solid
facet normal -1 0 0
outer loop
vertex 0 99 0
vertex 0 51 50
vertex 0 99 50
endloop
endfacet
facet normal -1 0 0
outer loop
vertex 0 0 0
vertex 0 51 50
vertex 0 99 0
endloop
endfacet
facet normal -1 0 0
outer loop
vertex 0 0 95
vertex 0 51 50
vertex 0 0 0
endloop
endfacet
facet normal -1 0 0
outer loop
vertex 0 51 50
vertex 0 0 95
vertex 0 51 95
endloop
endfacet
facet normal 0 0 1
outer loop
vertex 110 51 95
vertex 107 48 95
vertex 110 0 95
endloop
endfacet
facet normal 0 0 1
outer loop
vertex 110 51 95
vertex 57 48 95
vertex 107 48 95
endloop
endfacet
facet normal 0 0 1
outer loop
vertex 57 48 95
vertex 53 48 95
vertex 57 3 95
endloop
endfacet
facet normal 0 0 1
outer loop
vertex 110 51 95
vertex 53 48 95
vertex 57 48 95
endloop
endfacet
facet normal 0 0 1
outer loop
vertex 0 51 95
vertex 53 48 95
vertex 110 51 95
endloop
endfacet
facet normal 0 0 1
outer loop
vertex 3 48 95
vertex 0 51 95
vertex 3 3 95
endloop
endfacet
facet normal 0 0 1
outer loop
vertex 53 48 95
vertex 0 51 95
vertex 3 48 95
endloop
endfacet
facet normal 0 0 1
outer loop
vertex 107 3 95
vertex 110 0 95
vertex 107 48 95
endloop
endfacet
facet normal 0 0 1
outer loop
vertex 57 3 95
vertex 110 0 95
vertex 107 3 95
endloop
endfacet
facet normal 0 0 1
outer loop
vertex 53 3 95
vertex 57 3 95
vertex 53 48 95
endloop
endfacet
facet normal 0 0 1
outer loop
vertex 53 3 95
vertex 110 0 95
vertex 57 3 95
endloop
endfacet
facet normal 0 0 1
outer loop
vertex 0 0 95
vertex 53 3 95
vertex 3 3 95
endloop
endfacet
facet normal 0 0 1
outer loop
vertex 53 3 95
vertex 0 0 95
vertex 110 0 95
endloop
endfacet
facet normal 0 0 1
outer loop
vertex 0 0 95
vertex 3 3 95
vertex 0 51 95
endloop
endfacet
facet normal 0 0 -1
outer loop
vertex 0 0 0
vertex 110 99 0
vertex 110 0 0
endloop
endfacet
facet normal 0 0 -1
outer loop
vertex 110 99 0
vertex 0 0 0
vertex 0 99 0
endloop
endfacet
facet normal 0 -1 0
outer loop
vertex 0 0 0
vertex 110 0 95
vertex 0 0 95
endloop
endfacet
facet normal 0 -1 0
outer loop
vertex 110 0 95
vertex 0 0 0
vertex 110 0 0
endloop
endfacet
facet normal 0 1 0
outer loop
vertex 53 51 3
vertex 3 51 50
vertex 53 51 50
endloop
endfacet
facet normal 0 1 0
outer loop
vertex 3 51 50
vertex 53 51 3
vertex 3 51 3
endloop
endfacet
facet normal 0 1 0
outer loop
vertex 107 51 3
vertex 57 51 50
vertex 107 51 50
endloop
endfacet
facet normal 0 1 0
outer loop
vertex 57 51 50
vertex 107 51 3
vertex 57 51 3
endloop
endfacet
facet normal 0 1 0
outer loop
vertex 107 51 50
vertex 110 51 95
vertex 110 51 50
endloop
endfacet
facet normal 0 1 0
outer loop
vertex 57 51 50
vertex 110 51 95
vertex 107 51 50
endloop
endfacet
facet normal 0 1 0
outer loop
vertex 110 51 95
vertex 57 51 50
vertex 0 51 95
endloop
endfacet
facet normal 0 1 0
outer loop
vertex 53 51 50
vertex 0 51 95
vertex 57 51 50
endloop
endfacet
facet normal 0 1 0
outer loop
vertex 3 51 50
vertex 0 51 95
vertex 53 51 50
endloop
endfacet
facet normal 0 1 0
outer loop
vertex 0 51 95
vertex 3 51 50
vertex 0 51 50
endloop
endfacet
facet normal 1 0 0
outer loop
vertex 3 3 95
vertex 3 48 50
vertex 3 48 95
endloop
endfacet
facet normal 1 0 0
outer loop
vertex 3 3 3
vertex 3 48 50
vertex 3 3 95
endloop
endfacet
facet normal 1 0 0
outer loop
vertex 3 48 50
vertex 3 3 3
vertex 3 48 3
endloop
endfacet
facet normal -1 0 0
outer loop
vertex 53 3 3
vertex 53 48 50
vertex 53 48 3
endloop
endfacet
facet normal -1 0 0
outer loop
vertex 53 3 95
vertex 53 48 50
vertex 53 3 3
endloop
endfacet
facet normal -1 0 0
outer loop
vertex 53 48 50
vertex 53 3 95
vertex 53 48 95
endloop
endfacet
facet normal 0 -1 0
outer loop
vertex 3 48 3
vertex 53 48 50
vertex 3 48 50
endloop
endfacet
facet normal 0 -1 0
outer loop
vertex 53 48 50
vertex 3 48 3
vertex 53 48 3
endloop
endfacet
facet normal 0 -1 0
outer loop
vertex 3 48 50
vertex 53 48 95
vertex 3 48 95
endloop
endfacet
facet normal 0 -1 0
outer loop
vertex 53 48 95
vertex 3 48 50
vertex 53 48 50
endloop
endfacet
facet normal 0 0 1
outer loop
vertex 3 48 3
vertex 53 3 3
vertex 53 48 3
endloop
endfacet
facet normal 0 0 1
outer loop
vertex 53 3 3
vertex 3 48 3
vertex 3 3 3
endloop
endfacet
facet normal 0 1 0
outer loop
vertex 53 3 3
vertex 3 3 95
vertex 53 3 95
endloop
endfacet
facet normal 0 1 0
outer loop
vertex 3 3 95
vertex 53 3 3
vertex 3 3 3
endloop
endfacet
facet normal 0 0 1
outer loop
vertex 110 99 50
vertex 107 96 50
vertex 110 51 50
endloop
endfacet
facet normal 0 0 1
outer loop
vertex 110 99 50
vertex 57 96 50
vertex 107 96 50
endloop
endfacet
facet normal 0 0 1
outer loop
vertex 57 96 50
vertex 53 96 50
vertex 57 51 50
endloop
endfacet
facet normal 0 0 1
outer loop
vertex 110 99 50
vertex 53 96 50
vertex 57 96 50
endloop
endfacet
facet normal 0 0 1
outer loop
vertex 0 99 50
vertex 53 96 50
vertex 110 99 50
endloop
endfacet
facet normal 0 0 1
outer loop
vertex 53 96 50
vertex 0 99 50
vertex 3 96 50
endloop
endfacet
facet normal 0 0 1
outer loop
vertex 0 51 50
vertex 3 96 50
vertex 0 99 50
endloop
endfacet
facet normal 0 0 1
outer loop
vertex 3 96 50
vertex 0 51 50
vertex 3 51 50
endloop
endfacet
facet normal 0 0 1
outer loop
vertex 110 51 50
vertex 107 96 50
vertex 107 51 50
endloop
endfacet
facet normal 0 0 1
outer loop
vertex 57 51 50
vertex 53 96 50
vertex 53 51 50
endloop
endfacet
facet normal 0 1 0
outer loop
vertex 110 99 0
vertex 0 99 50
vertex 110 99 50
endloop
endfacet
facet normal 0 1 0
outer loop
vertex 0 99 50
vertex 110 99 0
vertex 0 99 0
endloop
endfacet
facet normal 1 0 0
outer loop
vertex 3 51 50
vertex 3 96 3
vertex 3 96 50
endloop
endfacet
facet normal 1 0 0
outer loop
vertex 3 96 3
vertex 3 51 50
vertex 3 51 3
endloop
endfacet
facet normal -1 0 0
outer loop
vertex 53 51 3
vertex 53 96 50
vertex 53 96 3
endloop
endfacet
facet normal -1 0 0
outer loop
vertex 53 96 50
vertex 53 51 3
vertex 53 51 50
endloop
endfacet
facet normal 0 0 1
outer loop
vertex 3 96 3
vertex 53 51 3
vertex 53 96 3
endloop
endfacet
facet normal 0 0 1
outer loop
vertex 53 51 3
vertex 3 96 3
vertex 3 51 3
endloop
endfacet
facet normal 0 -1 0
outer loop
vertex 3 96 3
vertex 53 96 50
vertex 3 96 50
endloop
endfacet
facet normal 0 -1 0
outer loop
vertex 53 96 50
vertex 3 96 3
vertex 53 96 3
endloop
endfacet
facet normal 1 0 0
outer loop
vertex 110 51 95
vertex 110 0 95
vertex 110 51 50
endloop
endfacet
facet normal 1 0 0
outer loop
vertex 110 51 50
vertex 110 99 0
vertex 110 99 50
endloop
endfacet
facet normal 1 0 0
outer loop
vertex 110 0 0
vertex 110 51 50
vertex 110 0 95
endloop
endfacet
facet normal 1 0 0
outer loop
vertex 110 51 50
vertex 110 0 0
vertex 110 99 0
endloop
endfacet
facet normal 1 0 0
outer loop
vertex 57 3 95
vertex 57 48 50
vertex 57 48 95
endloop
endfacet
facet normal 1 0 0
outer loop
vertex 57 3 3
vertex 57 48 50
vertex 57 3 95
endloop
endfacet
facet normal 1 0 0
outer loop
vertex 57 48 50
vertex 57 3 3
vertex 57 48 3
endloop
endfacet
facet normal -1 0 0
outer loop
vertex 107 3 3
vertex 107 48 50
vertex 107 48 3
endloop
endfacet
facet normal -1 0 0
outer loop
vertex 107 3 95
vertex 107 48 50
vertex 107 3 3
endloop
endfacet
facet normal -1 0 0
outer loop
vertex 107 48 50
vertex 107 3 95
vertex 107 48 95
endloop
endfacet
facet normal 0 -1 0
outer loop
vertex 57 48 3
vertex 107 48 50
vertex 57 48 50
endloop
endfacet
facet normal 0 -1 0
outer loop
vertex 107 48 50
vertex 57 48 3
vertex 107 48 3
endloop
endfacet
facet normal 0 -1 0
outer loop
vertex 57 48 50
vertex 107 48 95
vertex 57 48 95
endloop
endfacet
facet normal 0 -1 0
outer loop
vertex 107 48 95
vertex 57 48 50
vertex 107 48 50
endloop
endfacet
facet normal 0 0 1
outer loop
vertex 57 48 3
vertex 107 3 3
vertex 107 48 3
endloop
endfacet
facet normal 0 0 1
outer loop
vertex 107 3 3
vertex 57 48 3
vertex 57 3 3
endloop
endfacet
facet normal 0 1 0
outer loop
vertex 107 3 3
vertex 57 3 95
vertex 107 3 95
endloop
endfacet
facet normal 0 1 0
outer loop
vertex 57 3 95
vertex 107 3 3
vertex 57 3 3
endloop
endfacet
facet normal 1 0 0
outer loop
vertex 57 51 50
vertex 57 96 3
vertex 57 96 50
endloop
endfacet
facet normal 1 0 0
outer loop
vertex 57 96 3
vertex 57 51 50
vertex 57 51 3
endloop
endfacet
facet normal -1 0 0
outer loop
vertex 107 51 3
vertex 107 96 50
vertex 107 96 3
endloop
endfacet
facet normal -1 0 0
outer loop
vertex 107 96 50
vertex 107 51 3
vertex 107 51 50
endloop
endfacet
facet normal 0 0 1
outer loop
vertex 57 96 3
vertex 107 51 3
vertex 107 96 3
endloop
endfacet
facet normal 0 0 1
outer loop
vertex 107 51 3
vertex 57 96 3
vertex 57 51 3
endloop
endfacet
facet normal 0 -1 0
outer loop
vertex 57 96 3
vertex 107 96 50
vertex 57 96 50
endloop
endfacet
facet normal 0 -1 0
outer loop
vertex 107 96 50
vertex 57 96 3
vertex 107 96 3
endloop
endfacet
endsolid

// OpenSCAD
module cups() {
    union () {
        difference() {
            cube([56, 51, 95]);
            translate([3, 3, 3]) {
                cube([50, 45, 95]);
            }
        }
        translate([0, 48, 0]) {
            difference() {
                cube([56, 51, 50]);
                translate([3, 3, 3]) {
                    cube([50, 45, 50]);
                }
            }
        }
    }
}

union() {
    cups();
    translate([54, 0, 0])
        cups();
}
